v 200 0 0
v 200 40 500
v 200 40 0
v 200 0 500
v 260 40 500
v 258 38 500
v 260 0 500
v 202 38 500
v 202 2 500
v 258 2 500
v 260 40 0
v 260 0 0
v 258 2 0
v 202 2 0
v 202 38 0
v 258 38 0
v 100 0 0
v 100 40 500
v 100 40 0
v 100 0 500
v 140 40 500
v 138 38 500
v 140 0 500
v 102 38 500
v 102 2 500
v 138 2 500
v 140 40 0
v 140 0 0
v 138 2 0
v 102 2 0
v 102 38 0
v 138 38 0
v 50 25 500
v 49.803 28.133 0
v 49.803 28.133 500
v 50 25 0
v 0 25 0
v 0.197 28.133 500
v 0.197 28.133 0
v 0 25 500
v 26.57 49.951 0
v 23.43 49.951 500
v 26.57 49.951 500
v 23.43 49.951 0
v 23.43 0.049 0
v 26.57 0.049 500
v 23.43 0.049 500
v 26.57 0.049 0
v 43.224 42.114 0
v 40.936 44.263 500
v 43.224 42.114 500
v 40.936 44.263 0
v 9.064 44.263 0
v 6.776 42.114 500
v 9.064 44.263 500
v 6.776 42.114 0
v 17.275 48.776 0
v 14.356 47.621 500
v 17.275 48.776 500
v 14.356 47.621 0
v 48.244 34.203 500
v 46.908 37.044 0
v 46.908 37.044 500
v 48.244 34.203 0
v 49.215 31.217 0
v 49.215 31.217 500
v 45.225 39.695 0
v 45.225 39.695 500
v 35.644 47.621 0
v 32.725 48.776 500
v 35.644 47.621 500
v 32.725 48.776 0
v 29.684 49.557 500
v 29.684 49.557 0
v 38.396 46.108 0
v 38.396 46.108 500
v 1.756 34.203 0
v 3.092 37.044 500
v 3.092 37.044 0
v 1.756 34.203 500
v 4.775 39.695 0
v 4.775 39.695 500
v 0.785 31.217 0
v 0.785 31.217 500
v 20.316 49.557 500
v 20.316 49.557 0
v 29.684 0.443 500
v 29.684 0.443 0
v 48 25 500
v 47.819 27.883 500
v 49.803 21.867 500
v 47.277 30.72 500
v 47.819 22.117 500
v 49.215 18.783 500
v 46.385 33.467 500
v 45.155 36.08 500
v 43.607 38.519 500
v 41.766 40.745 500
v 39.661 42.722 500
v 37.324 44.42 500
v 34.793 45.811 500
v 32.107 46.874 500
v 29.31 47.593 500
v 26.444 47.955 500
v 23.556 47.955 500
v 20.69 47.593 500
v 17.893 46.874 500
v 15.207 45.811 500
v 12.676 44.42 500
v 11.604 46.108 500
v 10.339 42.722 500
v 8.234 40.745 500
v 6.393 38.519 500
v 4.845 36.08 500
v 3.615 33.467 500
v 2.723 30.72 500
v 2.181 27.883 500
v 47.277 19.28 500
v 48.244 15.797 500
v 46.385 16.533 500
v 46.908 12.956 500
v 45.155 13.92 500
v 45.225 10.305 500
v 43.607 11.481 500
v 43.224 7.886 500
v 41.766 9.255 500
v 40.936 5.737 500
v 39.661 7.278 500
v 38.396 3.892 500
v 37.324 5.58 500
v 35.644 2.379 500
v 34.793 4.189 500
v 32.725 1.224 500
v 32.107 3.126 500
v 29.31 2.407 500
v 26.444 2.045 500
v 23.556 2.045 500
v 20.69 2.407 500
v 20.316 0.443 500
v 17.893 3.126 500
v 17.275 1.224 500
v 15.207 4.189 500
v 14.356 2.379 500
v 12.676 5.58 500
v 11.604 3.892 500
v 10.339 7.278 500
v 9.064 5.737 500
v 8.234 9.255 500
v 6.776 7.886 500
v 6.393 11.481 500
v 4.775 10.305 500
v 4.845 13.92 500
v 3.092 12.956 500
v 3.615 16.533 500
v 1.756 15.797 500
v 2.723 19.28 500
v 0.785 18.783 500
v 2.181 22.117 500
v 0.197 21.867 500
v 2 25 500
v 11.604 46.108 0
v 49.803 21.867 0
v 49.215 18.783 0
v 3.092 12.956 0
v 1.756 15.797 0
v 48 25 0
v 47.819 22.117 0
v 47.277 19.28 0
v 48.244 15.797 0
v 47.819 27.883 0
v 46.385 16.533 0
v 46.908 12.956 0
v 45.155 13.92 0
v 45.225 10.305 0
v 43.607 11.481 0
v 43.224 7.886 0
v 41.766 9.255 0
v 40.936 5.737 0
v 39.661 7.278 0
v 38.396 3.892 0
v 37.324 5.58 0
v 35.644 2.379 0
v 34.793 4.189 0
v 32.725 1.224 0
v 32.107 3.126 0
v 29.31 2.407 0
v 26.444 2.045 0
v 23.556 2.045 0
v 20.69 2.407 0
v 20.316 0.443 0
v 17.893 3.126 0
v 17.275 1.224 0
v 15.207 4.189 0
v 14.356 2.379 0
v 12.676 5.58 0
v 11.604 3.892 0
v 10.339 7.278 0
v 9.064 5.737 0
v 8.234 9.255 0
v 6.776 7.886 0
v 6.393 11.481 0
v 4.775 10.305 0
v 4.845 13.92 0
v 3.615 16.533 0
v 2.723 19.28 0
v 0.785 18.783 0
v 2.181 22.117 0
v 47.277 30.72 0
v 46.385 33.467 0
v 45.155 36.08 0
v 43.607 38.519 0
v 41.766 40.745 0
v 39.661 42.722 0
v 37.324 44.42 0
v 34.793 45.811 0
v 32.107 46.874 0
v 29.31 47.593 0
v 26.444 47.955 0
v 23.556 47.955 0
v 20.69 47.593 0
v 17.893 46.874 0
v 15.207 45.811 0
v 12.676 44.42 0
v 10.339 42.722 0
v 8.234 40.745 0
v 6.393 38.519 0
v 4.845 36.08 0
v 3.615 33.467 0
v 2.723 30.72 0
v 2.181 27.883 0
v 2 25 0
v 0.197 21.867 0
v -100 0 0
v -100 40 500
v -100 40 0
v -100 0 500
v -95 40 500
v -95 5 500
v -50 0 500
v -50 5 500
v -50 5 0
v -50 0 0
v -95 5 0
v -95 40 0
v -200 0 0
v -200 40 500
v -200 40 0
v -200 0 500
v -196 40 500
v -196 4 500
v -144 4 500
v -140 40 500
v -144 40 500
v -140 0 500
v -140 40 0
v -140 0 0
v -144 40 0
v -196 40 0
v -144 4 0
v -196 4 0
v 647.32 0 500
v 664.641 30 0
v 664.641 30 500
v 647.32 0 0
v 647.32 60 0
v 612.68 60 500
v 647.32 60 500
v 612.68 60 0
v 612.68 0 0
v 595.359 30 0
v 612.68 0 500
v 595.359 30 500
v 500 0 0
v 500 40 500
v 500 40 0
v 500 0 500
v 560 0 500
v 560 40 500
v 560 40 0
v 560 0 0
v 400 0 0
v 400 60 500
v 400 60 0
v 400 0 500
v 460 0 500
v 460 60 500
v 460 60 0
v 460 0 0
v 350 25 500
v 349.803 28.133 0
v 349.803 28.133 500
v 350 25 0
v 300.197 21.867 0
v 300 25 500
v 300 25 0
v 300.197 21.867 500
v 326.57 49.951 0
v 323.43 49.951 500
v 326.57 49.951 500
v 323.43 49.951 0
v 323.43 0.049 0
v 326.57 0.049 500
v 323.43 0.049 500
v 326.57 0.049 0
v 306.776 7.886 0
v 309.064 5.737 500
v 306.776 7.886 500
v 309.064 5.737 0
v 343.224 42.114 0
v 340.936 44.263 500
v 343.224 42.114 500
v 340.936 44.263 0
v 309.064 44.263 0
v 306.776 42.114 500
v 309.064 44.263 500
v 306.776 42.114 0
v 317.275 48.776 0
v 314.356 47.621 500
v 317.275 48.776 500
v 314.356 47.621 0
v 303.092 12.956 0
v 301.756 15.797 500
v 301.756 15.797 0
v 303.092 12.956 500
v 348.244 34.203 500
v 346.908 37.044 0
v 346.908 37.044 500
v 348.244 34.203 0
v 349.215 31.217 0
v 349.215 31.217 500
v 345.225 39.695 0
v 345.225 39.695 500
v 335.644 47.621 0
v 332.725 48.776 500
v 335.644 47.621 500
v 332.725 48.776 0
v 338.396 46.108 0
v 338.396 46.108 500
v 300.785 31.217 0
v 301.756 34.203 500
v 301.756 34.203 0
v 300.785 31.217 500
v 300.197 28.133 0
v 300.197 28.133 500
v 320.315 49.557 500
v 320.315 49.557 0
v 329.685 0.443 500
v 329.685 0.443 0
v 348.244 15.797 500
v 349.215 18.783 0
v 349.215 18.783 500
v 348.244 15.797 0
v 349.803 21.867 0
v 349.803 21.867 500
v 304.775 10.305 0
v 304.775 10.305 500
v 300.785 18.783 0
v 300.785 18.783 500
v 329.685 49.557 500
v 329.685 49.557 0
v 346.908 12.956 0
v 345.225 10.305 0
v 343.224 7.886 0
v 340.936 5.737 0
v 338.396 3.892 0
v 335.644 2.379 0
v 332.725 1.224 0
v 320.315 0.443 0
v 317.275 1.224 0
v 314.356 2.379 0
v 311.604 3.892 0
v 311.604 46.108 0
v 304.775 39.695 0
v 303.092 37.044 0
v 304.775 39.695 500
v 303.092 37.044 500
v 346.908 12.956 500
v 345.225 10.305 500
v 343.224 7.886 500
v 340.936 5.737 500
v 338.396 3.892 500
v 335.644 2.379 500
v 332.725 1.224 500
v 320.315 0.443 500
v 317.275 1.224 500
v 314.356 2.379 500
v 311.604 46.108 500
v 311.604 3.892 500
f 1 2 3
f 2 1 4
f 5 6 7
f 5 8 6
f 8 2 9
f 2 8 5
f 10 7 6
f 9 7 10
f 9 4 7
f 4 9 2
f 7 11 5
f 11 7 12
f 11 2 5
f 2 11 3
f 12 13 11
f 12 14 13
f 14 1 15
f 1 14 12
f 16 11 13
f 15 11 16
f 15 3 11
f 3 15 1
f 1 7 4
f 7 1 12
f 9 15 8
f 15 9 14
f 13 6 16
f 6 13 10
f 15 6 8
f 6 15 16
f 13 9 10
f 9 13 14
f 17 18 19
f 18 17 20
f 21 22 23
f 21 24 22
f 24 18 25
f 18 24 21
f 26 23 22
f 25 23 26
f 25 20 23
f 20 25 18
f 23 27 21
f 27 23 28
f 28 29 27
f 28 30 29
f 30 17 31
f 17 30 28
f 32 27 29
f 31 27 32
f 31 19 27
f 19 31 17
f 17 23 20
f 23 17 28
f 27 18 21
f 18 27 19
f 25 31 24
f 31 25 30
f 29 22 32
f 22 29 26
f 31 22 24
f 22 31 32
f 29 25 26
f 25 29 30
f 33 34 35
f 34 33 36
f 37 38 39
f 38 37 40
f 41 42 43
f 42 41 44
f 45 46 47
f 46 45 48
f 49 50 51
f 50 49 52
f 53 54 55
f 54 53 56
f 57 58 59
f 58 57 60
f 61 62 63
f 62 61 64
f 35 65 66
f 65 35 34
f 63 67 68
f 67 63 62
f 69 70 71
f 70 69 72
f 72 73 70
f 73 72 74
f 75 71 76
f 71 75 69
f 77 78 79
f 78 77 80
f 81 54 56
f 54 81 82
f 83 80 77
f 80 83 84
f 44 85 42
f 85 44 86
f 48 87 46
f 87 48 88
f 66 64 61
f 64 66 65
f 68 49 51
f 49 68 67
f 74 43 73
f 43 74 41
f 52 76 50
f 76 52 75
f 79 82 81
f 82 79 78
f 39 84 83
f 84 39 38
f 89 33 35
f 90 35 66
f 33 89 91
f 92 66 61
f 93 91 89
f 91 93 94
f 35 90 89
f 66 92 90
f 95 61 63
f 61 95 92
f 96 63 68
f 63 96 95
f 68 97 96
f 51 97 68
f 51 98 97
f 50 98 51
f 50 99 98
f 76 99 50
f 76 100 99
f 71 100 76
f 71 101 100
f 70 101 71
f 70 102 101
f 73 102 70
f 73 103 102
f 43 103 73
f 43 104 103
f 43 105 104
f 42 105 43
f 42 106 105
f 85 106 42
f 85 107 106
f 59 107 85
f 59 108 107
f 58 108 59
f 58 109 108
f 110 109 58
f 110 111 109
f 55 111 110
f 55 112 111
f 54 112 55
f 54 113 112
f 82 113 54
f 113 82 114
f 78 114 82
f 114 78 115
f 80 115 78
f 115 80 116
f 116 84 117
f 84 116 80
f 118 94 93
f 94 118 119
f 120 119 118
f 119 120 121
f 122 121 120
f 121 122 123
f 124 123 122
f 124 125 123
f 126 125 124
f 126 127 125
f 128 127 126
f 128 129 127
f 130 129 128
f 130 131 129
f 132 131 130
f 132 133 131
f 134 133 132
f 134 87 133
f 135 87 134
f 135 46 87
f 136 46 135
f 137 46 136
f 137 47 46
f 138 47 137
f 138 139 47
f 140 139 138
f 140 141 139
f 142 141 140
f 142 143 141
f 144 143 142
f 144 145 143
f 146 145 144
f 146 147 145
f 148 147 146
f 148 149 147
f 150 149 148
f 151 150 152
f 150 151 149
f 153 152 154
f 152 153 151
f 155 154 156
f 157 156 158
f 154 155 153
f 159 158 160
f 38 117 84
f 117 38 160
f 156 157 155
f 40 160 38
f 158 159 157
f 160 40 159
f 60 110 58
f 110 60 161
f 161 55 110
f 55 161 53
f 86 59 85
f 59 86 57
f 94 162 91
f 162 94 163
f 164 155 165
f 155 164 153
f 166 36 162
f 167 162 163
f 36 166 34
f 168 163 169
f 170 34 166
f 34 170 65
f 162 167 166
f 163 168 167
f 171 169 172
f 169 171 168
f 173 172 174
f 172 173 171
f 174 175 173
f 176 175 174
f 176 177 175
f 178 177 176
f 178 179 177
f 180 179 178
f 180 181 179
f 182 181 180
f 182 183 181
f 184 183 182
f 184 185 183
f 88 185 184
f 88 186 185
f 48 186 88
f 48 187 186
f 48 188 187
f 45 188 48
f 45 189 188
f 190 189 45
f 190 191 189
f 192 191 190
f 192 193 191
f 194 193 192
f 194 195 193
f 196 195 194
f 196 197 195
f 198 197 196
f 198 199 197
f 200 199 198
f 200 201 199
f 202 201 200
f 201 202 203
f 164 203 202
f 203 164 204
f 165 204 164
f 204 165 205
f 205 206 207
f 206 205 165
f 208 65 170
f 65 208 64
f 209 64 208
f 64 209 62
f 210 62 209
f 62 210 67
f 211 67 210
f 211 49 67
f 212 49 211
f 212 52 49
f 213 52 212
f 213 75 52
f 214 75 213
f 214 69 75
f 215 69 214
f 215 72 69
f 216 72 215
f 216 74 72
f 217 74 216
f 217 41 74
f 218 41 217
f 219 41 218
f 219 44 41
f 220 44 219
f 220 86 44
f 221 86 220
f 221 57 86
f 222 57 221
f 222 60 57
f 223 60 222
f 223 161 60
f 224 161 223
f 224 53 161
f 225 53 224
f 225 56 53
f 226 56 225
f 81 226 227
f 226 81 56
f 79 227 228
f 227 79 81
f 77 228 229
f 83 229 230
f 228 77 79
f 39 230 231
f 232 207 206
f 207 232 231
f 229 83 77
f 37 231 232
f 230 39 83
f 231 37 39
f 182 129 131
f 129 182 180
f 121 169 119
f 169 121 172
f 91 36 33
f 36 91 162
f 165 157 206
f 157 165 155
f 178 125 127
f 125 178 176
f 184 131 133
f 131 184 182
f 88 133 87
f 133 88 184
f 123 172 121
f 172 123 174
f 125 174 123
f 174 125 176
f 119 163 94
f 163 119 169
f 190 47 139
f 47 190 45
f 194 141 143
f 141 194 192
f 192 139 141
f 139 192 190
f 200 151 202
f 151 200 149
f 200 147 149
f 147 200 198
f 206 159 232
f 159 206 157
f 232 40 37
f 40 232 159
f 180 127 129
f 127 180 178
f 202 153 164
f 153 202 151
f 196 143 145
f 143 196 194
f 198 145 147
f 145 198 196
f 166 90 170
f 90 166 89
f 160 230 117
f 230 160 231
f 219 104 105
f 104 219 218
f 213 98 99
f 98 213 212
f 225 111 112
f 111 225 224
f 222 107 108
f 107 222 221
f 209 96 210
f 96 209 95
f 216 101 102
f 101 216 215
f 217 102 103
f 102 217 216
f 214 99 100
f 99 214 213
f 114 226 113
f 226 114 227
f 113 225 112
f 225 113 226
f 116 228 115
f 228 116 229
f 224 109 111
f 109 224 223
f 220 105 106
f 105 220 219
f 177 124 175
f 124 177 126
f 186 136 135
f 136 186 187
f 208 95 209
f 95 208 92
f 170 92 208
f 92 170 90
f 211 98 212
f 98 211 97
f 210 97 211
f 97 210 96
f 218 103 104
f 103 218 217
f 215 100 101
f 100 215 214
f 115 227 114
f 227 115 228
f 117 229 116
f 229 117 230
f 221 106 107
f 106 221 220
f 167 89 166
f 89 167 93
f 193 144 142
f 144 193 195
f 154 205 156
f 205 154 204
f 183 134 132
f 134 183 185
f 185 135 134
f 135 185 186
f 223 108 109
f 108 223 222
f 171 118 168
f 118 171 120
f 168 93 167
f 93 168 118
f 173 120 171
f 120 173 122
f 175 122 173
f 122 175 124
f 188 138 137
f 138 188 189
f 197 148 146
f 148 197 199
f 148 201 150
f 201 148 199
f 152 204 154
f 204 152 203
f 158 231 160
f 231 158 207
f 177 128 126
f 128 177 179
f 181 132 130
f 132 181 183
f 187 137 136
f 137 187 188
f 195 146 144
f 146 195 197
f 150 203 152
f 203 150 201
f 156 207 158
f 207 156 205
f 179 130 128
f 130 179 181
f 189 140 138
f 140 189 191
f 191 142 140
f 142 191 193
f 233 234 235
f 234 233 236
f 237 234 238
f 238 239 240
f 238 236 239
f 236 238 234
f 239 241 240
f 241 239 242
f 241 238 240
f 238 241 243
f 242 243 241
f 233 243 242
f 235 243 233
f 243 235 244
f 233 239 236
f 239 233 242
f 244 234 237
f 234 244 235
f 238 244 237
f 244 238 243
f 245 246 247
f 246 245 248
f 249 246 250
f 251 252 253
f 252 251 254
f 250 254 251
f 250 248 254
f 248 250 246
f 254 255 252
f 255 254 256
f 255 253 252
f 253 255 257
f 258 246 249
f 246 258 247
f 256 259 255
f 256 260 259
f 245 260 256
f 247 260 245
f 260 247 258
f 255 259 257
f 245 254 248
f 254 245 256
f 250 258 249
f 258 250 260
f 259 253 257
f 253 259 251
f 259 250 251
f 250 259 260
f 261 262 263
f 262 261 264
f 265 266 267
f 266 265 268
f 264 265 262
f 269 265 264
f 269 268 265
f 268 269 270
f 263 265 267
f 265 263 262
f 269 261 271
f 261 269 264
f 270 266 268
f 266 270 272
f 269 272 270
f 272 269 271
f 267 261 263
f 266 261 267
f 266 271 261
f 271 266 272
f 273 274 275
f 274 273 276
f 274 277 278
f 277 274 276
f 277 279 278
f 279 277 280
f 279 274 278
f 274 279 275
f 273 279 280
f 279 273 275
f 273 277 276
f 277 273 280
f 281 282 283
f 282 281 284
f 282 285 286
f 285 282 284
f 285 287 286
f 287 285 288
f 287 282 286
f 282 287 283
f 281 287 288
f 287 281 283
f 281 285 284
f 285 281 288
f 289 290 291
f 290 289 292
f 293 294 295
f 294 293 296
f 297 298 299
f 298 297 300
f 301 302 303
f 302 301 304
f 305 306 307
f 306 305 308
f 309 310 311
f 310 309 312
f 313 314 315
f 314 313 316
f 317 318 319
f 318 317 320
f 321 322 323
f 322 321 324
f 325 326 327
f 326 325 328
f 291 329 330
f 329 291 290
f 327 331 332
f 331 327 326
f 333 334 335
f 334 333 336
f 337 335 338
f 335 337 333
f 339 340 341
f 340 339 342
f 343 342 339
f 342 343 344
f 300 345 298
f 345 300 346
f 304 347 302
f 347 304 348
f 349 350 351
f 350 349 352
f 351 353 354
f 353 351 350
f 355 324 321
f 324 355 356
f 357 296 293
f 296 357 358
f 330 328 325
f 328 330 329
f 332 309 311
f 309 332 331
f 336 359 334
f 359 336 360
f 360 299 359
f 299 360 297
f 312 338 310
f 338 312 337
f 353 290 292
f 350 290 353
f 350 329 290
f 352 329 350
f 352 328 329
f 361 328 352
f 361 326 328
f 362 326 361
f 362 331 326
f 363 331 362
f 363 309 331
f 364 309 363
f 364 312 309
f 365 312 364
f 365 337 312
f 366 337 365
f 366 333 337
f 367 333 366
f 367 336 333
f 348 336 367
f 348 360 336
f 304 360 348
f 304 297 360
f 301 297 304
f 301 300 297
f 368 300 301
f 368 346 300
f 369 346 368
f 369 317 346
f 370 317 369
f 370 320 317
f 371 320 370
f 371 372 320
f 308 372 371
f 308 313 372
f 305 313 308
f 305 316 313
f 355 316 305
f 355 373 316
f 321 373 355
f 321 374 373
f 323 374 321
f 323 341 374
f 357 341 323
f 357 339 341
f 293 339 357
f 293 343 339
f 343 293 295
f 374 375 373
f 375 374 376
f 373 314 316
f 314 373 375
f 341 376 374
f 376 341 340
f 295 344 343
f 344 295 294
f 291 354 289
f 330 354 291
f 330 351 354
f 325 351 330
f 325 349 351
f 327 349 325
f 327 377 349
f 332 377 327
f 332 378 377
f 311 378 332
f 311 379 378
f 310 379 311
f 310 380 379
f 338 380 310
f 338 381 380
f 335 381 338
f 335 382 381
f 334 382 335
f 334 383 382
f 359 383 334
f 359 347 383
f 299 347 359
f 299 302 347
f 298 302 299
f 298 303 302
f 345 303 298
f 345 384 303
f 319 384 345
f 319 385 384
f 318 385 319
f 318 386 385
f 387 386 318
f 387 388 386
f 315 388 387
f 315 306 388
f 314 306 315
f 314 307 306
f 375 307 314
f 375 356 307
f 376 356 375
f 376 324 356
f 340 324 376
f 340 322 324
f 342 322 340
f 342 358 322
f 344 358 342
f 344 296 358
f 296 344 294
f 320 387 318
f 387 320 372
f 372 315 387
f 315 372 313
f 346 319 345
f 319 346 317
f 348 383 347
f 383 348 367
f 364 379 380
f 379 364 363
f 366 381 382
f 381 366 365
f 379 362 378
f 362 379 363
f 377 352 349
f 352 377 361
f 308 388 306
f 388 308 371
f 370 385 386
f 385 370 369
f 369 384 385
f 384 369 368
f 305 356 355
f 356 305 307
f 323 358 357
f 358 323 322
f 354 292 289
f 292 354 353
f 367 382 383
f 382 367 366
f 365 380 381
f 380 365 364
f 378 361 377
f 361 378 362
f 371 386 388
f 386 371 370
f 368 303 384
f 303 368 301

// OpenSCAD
$fn=50;

// Bars

//// Rectangular Bars: width=x-axis; height=y-axis; lenght=z-axis
module rectangularBar(width, height, length)
{
    cube( [width,height,length] );
}

//// Square Bars: lenght=z-axis
module squareBar(height, length)
{
    cube( [height,height,length] );
}

//// Round Bars: lenght=z-axis
module roundBar(diameter, length)
{
    cylinder(h=length,d=diameter,center=false);
}

//// Hexagonal Bars: lenght=z-axis ; Attention: width is measured along the flats = inner Diameter !
module hexBar(width, length)
{   // see:  https://en.wikipedia.org/wiki/Hexagon
    // d = (sqrt(3)/2) * D    
    // => D = d / (sqrt(3)/2) and R = D/2
    // where d=innerDiameter=width and D=outerDiameter and r = innerRadius and R = outerRadius
    //outerDiameter = width / (sqrt(3.0)/2.0);
    // or:
    // R = r / cos(30°) 
    // or:
    // R = r / (sqrt(3.0)/2.0)
//     outerRadius1 = (width/(sqrt(3.0)/2.0)) / 2.0;
//     outerRadius2 = (width/2)/cos(30.0);
//     outerRadius3 = (width/2)/(sqrt(3.0)/2.0);
//     echo(width=width);
//     echo(outerRadius1=outerRadius1);
//     echo(outerRadius2=outerRadius2);
//     echo(outerRadius3=outerRadius3);
    
    linear_extrude(height=length)
    {
        outerRadius = (width/2)/cos(30.0);
        circle(r=outerRadius,$fn=6);
    }
}


// Tubes

//// Rectangular Tube: width=x-axis; height=y-axis; lenght=z-axis
module rectangularTube(width, height, length, wall)
{
    difference()
    {
        cube( [width,height,length] );
        translate([wall,wall,-2])
            cube( [width-2*wall,height-2*wall,length+4] );
    }
}

//// Square Tubes: lenght=z-axis
module squareTube(height, length, wall)
{
    difference()
    {
        cube( [height,height,length] );
        translate([wall,wall,-2])
            cube( [height-2*wall,height-2*wall,length+4] );
    }
}

//// Round Tubes: lenght=z-axis
module roundTube(diameter, length, wall)
{
    difference()
    {
        cylinder(h=length,d=diameter,center=false);
        translate([0,0,-2])
            cylinder(h=length+4,d=diameter-2*wall,center=false);
    }
}

// Angle Irons
module angleIron(width, height, length, wall)
{
    union()
    {
        cube( [width, wall,length] );
        translate( [wall,0,0] )
            rotate( [0,0,90] )
                cube( [height, wall,length] );
    }
}

// U-Profile 
module uProfile(width, height, length, wall)
{
    difference()
    {
        cube( [width, height, length] );
        translate( [wall,wall,-2] )
            cube( [width-2*wall, height, length+4] );
    }
}

// bars
barWidth=60;
barHeight=40;
barLength=500;
barDiameter=50;
// tubes
tubeWidth=60;
tubeHeight=40;
tubeLength=500;
tubeDiameter=50;
tubeWall=2;
// angle iron
angleWidth=50;
angleHeight=40;
angleLength=500;
angleWall=5;
// u-profiles
uprofileWidth=60;
uprofileHeight=40;
uprofileLength=500;
uprofileWall=4;


color( "LightSkyBlue", 9.0 )
{
translate([600+barWidth/2,barWidth/2,0]) 
    hexBar( barWidth,barLength );
    
translate([500,0,0]) 
    rectangularBar( barWidth,barHeight,barLength );

translate([400,0,0]) 
    squareBar( barWidth,barLength );

translate([300+barDiameter/2,barDiameter/2,0]) 
    roundBar( barDiameter,barLength );

translate([200,0,0]) 
    rectangularTube( tubeWidth, tubeHeight, tubeLength, tubeWall );

translate([100,0,0]) 
    squareTube( tubeHeight, tubeLength, tubeWall );

translate([barDiameter/2,barDiameter/2,0]) 
    roundTube( tubeDiameter, tubeLength, tubeWall );

translate([-100,0,0])
    angleIron( angleWidth, angleHeight, angleLength, angleWall );

translate([-200,0,0])
    uProfile( uprofileWidth, uprofileHeight, uprofileLength, uprofileWall );
}
